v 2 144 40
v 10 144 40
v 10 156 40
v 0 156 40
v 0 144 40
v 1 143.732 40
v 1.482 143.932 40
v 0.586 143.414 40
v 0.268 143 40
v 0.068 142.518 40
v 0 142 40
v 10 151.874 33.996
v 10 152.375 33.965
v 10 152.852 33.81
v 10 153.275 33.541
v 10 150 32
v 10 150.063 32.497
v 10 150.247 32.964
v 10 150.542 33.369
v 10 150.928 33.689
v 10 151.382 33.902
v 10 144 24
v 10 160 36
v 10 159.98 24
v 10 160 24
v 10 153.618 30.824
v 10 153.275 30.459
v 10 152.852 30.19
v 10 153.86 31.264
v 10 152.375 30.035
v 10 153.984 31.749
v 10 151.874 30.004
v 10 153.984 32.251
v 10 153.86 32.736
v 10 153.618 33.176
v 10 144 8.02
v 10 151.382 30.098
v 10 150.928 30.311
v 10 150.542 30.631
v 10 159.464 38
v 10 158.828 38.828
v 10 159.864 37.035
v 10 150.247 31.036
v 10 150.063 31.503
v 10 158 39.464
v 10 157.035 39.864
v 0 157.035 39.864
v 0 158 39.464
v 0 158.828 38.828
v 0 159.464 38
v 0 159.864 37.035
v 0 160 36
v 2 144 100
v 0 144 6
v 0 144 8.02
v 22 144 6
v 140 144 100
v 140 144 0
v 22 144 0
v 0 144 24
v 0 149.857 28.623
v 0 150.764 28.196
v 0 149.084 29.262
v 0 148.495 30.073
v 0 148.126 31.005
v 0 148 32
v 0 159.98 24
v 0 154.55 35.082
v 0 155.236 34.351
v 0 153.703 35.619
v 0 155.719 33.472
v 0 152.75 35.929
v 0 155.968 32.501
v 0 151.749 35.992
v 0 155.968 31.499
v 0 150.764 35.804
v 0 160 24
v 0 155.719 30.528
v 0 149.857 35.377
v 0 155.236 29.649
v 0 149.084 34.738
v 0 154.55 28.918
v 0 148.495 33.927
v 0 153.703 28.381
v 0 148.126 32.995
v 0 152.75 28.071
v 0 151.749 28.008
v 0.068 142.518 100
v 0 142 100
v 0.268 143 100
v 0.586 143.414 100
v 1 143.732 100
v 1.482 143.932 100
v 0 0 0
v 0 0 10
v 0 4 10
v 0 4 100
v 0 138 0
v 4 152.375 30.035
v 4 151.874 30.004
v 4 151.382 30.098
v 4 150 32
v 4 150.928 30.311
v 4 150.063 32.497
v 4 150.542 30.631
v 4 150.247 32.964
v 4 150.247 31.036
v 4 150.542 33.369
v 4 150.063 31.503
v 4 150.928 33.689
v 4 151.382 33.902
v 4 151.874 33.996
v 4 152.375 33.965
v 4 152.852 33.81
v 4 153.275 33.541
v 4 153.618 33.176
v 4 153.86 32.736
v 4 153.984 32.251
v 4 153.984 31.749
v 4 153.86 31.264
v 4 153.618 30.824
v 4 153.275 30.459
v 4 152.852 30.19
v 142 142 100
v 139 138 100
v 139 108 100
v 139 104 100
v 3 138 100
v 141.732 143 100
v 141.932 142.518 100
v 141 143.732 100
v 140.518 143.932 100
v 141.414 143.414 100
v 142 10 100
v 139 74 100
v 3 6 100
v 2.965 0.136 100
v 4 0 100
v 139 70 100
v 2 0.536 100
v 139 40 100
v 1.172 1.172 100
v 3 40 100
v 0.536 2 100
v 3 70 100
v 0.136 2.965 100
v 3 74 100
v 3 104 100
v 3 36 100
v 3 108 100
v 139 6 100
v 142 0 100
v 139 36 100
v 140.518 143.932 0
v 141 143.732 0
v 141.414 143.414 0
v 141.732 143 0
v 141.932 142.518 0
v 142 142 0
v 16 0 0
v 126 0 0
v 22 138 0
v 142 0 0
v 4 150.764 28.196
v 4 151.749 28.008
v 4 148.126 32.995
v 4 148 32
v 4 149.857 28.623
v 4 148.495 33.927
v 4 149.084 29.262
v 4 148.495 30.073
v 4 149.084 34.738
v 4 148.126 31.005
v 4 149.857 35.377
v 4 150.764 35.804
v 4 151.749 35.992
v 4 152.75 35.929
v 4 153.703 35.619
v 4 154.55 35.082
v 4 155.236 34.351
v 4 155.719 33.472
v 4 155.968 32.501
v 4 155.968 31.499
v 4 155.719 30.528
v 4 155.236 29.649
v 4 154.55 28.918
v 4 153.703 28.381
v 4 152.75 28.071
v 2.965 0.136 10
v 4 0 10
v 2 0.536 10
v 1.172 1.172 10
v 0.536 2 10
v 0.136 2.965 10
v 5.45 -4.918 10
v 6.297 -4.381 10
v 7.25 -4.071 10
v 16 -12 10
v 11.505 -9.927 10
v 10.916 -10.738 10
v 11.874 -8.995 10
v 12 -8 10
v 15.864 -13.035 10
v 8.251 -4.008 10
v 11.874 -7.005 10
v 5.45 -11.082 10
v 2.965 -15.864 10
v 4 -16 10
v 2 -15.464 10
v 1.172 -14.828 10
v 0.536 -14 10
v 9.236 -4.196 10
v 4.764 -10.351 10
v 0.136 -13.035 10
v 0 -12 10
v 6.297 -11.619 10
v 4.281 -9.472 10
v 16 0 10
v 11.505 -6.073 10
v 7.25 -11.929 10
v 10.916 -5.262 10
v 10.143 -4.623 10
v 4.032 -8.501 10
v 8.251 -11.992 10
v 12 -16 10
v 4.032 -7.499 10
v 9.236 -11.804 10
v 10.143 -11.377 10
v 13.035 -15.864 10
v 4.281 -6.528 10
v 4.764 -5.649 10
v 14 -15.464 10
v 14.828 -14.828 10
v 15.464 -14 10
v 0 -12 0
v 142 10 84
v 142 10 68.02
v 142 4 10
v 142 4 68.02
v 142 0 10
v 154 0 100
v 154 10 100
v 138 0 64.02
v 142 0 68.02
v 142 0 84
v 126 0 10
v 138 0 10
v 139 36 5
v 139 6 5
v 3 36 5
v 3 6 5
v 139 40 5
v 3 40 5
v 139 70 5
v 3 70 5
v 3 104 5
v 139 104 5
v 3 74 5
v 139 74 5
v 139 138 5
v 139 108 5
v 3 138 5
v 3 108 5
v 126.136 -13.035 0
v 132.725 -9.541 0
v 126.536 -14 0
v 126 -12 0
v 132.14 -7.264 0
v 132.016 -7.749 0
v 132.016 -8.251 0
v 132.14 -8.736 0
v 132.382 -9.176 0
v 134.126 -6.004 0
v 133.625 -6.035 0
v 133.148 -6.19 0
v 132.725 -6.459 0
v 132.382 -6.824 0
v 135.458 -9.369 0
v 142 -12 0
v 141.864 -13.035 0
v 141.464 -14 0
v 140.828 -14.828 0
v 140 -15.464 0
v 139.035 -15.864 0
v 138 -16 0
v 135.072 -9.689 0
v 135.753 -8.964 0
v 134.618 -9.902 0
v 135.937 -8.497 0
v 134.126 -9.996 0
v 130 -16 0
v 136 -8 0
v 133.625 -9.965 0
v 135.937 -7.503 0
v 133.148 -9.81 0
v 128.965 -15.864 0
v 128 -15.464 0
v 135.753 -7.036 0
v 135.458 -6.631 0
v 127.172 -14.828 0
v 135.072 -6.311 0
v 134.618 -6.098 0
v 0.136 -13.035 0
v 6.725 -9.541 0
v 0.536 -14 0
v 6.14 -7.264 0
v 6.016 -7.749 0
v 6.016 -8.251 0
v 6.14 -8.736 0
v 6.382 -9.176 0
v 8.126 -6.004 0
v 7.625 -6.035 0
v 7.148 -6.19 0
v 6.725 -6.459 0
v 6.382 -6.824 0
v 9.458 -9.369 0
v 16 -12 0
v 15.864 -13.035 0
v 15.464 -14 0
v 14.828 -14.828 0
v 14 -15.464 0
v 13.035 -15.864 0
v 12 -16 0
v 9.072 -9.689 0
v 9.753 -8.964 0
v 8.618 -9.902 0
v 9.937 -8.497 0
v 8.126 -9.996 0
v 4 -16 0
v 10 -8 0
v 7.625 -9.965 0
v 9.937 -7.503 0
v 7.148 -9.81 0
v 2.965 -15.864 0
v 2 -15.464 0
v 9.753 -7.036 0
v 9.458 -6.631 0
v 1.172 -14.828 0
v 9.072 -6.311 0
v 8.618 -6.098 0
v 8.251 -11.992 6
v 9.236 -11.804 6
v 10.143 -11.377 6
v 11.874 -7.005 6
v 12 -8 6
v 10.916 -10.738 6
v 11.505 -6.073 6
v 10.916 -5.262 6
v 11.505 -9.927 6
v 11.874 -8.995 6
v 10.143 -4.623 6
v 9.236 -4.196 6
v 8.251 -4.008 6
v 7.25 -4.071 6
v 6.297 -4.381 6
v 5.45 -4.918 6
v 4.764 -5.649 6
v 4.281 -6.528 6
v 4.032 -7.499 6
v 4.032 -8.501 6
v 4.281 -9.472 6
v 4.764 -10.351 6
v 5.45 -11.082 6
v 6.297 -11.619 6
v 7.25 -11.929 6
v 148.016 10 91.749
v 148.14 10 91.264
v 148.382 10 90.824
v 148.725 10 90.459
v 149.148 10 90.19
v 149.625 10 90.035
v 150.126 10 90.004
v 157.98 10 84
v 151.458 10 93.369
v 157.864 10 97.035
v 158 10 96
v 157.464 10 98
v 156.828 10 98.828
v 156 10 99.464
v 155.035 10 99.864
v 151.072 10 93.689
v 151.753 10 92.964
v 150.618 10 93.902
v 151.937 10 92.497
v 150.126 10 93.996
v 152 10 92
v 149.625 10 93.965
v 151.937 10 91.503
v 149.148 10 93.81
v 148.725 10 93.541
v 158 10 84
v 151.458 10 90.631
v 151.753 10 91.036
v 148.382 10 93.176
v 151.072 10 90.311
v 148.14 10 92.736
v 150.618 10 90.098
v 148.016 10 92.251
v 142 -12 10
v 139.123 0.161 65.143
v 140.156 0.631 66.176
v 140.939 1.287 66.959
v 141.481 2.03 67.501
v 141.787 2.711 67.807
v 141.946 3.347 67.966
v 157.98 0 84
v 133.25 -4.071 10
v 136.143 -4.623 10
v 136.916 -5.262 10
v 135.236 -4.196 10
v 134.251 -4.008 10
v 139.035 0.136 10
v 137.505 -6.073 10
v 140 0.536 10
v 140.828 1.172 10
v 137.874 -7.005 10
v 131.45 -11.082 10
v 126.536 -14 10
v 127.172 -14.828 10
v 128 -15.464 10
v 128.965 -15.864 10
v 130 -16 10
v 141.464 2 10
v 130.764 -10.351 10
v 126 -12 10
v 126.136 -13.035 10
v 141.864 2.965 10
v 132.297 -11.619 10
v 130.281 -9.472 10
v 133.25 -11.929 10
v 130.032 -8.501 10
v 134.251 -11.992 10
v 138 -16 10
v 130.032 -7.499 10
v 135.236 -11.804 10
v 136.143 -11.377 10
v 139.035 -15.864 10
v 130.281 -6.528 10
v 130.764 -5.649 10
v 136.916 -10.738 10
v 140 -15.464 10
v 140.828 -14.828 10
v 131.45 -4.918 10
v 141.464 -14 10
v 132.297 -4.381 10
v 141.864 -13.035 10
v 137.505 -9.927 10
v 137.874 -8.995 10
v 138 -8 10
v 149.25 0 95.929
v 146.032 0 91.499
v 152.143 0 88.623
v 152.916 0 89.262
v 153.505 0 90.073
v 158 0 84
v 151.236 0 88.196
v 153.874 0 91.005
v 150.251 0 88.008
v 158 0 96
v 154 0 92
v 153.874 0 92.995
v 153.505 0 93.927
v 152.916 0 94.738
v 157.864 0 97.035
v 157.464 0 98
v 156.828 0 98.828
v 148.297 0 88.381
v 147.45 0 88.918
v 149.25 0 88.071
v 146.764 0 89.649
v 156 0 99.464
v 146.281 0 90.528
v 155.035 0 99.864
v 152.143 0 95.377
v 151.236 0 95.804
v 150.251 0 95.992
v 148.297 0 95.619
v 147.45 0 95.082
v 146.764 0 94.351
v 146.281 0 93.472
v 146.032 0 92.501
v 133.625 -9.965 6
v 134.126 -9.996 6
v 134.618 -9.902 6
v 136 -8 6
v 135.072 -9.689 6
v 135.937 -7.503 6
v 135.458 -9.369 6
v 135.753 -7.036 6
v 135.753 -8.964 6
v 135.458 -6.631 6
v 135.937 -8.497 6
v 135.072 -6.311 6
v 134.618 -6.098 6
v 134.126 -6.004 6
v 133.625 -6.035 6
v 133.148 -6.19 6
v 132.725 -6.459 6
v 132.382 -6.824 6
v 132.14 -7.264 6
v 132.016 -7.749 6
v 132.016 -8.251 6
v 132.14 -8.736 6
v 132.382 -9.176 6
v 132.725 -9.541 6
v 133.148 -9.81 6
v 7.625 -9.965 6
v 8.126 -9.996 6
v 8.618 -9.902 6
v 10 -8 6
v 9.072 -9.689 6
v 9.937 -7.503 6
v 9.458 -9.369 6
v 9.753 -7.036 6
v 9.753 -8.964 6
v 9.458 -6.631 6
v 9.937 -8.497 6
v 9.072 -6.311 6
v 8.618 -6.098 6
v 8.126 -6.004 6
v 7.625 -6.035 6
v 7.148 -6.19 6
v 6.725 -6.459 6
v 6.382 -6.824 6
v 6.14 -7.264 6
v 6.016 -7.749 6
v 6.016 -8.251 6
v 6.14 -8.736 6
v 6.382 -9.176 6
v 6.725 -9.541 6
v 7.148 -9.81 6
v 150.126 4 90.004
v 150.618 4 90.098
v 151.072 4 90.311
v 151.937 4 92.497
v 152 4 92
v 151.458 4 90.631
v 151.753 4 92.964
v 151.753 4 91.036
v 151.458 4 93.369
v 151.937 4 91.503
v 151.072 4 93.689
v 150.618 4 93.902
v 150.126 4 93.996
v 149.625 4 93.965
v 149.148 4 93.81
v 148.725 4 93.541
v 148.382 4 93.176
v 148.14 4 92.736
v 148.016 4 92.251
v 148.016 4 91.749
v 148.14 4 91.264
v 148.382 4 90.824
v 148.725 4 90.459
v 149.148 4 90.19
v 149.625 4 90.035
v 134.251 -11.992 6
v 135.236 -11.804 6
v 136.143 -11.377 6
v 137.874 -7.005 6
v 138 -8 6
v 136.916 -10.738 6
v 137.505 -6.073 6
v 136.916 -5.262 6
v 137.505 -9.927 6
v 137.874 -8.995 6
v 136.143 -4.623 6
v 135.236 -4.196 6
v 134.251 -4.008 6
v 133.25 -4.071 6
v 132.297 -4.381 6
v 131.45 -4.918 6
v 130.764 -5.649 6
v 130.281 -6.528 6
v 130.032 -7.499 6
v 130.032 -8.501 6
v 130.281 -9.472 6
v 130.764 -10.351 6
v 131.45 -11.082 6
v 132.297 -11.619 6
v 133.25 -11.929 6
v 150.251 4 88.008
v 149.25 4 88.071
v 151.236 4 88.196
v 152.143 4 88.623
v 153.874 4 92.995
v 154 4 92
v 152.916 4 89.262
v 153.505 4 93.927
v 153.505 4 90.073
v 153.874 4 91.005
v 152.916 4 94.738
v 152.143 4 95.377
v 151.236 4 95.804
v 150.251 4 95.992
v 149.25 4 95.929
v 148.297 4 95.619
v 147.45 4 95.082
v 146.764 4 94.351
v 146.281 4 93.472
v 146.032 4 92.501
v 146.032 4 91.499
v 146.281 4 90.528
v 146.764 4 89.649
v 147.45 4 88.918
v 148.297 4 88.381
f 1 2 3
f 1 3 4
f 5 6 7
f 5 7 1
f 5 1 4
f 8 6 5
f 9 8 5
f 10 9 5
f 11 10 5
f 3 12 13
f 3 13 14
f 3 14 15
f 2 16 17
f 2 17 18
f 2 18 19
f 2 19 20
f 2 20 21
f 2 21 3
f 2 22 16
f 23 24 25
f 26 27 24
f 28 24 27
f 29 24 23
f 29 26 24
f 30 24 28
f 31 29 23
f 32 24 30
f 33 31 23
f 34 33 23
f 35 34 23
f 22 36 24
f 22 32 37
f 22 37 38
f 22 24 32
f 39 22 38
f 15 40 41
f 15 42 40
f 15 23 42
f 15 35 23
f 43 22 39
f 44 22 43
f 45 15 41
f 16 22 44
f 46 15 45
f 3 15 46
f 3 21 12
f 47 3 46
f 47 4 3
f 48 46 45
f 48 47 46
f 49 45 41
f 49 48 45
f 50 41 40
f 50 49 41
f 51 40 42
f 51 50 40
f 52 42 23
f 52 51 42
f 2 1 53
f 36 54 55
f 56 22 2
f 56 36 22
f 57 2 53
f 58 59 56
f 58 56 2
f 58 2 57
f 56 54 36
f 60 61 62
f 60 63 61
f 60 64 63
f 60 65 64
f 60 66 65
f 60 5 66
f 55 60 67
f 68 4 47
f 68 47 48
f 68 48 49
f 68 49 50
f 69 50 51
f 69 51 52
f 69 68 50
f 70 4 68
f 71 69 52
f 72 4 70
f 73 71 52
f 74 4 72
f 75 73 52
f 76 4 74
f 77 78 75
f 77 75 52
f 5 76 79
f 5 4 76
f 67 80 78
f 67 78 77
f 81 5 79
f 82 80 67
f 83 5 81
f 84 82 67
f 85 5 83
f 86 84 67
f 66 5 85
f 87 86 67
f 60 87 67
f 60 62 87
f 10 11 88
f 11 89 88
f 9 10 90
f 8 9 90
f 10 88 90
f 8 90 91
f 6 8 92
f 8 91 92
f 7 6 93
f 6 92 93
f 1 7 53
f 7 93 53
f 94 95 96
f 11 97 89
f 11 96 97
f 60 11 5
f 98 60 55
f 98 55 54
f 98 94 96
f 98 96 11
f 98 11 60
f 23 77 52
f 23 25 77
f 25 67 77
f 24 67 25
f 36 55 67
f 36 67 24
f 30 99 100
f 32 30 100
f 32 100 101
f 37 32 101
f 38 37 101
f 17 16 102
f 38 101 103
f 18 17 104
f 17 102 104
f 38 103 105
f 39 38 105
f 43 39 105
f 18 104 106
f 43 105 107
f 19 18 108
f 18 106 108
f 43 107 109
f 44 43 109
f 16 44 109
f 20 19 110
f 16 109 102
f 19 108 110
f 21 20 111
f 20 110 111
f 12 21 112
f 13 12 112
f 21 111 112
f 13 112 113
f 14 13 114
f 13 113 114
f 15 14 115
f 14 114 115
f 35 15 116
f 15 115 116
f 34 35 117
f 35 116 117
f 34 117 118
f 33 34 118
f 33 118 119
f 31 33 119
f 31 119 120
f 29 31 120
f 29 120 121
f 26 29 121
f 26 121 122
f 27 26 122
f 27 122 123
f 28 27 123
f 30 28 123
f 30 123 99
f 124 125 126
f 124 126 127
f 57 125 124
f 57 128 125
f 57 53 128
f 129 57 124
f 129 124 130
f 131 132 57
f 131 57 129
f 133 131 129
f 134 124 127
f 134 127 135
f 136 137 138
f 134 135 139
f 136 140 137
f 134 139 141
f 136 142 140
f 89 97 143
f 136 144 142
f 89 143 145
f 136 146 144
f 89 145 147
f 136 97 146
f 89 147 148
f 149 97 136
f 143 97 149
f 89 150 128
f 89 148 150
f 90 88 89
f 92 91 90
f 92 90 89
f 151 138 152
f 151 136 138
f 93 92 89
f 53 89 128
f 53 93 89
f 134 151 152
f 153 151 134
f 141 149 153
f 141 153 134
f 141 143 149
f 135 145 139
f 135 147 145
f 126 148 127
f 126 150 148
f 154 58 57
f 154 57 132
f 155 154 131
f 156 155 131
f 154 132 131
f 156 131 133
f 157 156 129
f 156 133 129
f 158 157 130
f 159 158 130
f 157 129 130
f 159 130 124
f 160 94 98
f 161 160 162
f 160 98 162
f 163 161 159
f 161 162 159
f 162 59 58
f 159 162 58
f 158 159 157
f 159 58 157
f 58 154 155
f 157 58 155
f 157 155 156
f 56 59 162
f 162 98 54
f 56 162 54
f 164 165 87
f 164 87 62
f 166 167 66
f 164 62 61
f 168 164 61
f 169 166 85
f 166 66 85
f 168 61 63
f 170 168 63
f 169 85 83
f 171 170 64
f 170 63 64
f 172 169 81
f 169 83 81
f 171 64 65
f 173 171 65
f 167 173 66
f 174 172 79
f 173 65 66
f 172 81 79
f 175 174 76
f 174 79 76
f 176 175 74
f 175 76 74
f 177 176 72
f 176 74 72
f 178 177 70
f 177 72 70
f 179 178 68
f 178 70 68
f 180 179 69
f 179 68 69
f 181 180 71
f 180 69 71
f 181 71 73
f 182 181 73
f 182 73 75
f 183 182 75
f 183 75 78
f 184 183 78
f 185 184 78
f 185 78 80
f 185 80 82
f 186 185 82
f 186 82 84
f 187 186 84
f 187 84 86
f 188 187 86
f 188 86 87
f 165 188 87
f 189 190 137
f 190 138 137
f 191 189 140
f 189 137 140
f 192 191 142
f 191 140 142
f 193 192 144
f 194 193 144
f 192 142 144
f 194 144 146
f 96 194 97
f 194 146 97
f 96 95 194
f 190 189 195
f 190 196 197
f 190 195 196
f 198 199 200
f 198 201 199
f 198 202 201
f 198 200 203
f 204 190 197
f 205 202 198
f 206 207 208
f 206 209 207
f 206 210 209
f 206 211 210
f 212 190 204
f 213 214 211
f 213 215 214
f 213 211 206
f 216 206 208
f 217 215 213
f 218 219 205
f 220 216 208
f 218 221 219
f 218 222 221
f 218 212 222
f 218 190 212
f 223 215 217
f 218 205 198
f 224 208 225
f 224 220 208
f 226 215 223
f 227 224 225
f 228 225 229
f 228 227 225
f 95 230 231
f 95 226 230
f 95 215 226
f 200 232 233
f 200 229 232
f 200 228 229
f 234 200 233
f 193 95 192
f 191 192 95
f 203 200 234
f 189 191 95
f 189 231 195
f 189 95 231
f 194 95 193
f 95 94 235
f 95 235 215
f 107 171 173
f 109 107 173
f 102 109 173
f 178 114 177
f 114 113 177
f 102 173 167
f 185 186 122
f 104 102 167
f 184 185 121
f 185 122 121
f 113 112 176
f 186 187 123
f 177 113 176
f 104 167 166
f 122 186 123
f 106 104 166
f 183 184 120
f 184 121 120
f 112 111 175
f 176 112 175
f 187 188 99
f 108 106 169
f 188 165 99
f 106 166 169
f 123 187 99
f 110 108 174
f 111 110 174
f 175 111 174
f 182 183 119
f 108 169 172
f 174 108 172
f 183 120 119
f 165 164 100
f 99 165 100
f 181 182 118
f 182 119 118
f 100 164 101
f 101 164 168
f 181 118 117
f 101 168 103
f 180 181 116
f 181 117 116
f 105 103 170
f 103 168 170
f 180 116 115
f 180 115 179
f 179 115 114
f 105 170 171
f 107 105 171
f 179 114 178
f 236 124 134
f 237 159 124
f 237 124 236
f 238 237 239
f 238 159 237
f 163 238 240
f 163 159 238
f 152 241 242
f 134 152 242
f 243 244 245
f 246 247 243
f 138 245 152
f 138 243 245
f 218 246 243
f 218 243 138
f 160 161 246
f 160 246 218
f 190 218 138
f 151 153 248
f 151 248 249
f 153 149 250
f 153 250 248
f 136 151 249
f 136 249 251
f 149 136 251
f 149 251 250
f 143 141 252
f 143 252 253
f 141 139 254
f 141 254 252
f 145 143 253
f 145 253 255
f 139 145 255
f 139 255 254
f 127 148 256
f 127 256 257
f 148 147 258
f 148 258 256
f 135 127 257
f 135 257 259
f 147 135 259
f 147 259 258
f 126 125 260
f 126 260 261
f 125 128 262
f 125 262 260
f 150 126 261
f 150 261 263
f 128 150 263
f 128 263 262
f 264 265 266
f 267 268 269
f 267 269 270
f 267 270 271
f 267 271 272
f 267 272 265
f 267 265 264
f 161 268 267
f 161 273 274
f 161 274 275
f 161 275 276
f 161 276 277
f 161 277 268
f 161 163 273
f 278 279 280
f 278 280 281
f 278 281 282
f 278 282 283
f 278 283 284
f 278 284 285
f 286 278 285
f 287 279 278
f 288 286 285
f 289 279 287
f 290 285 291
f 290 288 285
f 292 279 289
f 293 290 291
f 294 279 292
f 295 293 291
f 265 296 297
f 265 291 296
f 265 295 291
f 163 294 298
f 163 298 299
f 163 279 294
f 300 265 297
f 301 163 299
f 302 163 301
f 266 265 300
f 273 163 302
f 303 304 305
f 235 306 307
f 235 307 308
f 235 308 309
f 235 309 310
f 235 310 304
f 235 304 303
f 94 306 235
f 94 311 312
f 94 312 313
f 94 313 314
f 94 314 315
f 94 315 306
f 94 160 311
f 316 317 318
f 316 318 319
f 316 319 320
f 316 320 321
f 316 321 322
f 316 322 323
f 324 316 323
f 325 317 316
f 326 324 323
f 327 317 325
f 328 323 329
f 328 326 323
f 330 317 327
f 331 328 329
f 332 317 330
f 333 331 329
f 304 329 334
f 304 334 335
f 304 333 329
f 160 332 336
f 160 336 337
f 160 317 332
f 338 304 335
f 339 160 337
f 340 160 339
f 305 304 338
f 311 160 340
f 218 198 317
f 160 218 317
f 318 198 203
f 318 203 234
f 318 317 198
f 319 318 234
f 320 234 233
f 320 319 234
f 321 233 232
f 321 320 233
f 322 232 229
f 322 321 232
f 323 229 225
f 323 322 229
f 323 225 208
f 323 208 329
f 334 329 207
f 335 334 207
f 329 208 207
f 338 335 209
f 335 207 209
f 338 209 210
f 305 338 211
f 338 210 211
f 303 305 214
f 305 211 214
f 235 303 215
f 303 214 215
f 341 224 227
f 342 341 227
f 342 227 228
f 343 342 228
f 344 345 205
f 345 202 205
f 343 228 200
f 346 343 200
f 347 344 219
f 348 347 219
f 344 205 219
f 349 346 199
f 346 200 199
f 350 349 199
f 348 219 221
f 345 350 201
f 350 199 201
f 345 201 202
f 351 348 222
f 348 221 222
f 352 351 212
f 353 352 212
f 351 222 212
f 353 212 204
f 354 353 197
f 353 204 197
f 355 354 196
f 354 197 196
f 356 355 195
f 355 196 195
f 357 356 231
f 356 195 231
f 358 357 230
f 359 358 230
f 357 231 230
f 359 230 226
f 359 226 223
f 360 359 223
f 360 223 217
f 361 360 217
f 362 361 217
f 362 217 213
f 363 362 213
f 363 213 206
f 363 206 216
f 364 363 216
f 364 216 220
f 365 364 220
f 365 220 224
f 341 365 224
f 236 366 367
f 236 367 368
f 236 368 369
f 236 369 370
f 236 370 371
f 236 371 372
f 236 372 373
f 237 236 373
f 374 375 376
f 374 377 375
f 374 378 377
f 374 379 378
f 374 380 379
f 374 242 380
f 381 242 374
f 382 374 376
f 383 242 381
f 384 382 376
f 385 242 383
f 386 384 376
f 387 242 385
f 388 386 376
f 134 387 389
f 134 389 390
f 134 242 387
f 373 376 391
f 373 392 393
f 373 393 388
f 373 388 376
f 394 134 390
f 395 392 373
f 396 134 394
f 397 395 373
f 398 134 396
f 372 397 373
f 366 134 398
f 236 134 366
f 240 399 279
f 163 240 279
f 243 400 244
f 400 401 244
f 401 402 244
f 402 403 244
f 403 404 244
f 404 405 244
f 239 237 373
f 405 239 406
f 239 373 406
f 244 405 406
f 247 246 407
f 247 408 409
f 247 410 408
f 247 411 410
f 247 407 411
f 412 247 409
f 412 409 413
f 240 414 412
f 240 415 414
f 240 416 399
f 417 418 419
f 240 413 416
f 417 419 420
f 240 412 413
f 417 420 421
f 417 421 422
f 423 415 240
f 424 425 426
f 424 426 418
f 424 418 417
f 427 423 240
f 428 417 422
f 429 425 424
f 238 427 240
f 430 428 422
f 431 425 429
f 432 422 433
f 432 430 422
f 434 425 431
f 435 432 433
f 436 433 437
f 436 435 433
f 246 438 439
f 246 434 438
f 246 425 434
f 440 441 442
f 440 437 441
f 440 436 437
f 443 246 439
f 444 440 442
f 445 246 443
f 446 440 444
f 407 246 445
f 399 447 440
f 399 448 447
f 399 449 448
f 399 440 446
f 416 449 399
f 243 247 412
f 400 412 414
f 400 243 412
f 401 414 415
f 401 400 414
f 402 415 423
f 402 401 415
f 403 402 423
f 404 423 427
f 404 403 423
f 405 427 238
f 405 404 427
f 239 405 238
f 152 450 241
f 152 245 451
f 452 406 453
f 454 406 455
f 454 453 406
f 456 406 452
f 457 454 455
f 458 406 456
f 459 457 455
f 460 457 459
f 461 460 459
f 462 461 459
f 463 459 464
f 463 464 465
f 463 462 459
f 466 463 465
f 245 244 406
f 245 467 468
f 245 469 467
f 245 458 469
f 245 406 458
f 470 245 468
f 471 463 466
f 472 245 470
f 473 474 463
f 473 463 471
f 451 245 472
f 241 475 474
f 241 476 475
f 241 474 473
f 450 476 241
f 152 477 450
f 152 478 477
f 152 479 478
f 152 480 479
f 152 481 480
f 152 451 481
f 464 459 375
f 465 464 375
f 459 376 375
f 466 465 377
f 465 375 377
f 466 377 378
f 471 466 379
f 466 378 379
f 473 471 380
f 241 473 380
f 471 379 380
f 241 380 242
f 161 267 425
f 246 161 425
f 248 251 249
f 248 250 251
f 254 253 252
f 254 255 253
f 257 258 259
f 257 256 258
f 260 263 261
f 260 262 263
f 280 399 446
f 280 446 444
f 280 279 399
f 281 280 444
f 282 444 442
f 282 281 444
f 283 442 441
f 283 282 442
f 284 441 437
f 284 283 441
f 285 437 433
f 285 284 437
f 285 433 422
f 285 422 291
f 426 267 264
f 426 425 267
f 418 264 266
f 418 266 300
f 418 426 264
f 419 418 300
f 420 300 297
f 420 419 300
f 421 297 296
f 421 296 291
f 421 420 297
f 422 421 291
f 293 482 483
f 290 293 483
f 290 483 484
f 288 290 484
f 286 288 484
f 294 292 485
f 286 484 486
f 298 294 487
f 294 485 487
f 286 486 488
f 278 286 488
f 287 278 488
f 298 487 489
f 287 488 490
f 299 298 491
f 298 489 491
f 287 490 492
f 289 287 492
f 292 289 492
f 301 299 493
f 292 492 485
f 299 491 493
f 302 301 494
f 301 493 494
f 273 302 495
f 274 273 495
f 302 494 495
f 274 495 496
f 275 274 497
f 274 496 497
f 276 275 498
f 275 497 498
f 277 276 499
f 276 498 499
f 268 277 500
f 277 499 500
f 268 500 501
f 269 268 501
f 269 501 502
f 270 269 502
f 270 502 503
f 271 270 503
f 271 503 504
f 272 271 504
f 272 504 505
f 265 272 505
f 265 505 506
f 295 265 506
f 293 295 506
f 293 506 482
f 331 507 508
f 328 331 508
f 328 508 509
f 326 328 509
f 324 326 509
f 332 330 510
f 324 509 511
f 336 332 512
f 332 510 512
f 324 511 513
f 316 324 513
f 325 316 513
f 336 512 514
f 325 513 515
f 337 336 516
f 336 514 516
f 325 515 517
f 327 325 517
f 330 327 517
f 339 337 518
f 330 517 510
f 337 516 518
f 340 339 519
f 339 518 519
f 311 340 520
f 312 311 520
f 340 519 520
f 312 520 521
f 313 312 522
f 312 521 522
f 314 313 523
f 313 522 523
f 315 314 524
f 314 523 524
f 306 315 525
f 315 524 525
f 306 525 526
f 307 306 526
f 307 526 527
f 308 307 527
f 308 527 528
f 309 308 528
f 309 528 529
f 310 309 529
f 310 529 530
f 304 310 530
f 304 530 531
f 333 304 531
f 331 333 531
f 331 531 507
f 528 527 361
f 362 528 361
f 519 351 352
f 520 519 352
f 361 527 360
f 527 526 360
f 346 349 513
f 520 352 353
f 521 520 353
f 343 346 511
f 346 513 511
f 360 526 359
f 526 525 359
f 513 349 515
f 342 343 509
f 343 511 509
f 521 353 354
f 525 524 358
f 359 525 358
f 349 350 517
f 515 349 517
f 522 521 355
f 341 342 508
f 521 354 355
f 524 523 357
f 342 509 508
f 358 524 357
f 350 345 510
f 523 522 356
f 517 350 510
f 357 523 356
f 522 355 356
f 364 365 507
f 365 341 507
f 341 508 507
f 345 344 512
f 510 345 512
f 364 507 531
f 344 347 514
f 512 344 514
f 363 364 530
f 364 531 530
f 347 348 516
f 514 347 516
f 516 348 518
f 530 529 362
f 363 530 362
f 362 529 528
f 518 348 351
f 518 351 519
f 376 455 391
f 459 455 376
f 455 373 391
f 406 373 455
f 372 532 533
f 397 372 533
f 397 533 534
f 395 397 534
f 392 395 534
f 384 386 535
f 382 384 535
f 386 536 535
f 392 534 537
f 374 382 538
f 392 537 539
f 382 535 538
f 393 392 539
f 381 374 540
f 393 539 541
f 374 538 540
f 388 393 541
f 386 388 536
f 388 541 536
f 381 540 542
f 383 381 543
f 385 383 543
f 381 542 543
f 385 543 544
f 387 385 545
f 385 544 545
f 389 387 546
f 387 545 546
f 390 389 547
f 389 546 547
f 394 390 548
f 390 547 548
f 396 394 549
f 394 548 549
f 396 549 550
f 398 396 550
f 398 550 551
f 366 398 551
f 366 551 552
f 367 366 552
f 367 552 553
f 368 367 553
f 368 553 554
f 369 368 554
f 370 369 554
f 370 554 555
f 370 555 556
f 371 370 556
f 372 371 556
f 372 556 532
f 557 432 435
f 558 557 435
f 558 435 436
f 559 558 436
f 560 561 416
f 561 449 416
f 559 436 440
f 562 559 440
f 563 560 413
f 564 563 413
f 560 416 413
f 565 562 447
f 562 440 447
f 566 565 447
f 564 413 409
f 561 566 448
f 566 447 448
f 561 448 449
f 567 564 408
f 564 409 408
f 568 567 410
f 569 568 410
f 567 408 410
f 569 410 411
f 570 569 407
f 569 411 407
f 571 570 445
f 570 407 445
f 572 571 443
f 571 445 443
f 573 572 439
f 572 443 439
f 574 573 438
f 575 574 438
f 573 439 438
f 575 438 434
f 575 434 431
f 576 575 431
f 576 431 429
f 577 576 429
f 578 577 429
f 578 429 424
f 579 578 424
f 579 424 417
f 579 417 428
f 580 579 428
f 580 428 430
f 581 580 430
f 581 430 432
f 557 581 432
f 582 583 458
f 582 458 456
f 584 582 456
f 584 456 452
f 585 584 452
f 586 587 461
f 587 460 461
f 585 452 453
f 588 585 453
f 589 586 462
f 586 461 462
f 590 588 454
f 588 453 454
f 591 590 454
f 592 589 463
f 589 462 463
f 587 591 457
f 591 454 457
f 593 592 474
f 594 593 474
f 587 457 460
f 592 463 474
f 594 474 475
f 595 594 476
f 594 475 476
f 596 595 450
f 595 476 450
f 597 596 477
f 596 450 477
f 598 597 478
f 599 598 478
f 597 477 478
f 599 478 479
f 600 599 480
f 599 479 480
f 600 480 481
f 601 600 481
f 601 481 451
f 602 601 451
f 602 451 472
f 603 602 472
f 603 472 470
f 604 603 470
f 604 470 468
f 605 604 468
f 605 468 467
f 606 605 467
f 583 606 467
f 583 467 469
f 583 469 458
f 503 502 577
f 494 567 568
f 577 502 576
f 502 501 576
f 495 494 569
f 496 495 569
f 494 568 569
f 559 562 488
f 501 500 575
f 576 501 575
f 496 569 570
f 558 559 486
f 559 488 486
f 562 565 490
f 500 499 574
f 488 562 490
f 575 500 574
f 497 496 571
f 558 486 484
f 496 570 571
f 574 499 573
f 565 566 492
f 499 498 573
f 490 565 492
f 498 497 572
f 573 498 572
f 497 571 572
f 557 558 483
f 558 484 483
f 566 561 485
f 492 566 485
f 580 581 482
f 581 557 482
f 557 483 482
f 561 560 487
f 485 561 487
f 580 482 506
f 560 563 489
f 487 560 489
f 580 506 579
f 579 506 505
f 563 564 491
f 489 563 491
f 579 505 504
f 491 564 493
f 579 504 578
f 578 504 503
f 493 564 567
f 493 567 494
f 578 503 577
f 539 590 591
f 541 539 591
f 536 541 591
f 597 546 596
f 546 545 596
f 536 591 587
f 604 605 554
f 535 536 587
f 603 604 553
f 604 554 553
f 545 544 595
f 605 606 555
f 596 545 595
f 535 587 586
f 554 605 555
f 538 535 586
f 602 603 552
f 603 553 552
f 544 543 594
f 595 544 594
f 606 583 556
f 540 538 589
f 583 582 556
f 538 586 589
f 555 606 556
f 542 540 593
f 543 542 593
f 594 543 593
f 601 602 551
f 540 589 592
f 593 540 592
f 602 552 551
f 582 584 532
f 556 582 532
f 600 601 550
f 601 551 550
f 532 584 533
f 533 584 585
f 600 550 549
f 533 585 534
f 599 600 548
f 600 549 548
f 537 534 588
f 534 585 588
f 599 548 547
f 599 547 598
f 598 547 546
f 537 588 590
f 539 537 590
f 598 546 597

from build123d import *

# Parameters (mm, degrees)
SKETCH_W        = 142
SKETCH_H        = 144
PAD_DEPTH       = 100
SKETCH001_W     = 136
SKETCH001_H     = 30
POCKET_DEPTH    = 95
SKETCH002_W     = 10
SKETCH002_H     = 16
PAD001_DEPTH    = 16
SKETCH003_R     = 4
POCKET001_DEPTH = 4
SKETCH004_R     = 2
POCKET002_DEPTH = 6
SKETCH005_W     = 16
SKETCH005_H     = 10
PAD002_DEPTH    = 16
SKETCH006_R     = 4
POCKET003_DEPTH = 4
SKETCH007_R     = 2
POCKET004_DEPTH = 6
POCKET005_DEPTH = 22
SKETCH009_W     = 10
SKETCH009_H     = 16
PAD003_DEPTH    = 16
SKETCH010_R     = 4
POCKET006_DEPTH = 4
SKETCH011_R     = 2
POCKET007_DEPTH = 6
CHAMFER_SIZE    = 15.98
CHAMFER001_SIZE = 15.98
FILLET_R        = 4
FILLET001_R     = 4
FILLET002_R     = 4
FILLET003_R     = 4
FILLET004_R     = 2
FILLET005_R     = 2
FILLET006_R     = 4


with BuildPart() as part:
    # Sketch → Pad (new body)
    with BuildSketch(Plane.XY):
        with Locations((71, 72)):
            Rectangle(SKETCH_W, SKETCH_H)
    extrude(amount=PAD_DEPTH)

    # Sketch001 (on Face6 of Pad) → Pocket (cut)
    with BuildSketch(Plane.XY.offset(100)):
        with Locations((71, 123)):
            Rectangle(SKETCH001_W, SKETCH001_H)
        with Locations((71, 89)):
            Rectangle(SKETCH001_W, SKETCH001_H)
        with Locations((71, 55)):
            Rectangle(SKETCH001_W, SKETCH001_H)
        with Locations((71, 21)):
            Rectangle(SKETCH001_W, SKETCH001_H)
    extrude(amount=-POCKET_DEPTH, mode=Mode.SUBTRACT)

    # Sketch002 (on Face1 of Pocket) → Pad001 (join)
    with BuildSketch(Plane(origin=(0, 144, 0), x_dir=(-1, 0, 0), z_dir=(0, 1, 0))):
        with Locations((-5, 32)):
            Rectangle(SKETCH002_W, SKETCH002_H)
    extrude(amount=PAD001_DEPTH)

    # Sketch003 (on Face10 of Pad001) → Pocket001 (cut)
    with BuildSketch(Plane(origin=(0, 0, 0), x_dir=(0, -1, 0), z_dir=(-1, 0, 0))):
        with Locations((-152, 32)):
            Circle(SKETCH003_R)
    extrude(amount=-POCKET001_DEPTH, mode=Mode.SUBTRACT)

    # Sketch004 (on Face33 of Pocket001) → Pocket002 (cut)
    with BuildSketch(Plane(origin=(4, 0, 0), x_dir=(0, -1, 0), z_dir=(-1, 0, 0))):
        with Locations((-152, 32)):
            Circle(SKETCH004_R)
    extrude(amount=-POCKET002_DEPTH, mode=Mode.SUBTRACT)

    # Sketch005 (on Face4 of Pocket002) → Pad002 (join)
    with BuildSketch(Plane.XZ):
        with Locations((8, 5)):
            Rectangle(SKETCH005_W, SKETCH005_H)
        with Locations((134, 5)):
            Rectangle(SKETCH005_W, SKETCH005_H)
    extrude(amount=PAD002_DEPTH)

    # Sketch006 (on Face38 of Pad002) → Pocket003 (cut)
    with BuildSketch(Plane.XY.offset(10)):
        with Locations((8, -8)):
            Circle(SKETCH006_R)
        with Locations((134, -8)):
            Circle(SKETCH006_R)
    extrude(amount=-POCKET003_DEPTH, mode=Mode.SUBTRACT)

    # Sketch007 (on Face48 of Pocket003) → Pocket004 (cut)
    with BuildSketch(Plane.XY.offset(6)):
        with Locations((8, -8)):
            Circle(SKETCH007_R)
        with Locations((134, -8)):
            Circle(SKETCH007_R)
    extrude(amount=-POCKET004_DEPTH, mode=Mode.SUBTRACT)

    # Sketch008 (on Face5 of Pocket004) → Pocket005 (cut)
    with BuildSketch(Plane(origin=(0, 0, 0), x_dir=(0, -1, 0), z_dir=(-1, 0, 0))):
        Polygon((-144, 6), (-144, 0), (-138, 0), align=None)
    extrude(amount=-POCKET005_DEPTH, mode=Mode.SUBTRACT)

    # Sketch009 (on Face3 of Pocket005) → Pad003 (join)
    with BuildSketch(Plane.YZ.offset(142)):
        with Locations((5, 92)):
            Rectangle(SKETCH009_W, SKETCH009_H)
    extrude(amount=PAD003_DEPTH)

    # Sketch010 (on Face42 of Pad003) → Pocket006 (cut)
    with BuildSketch(Plane.XZ):
        with Locations((150, 92)):
            Circle(SKETCH010_R)
    extrude(amount=-POCKET006_DEPTH, mode=Mode.SUBTRACT)

    # Sketch011 (on Face59 of Pocket006) → Pocket007 (cut)
    with BuildSketch(Plane.XZ.offset(-4)):
        with Locations((150, 92)):
            Circle(SKETCH011_R)
    extrude(amount=-POCKET007_DEPTH, mode=Mode.SUBTRACT)

    # Chamfer
    chamfer_edges = [part.edges().sort_by_distance(p)[0] for p in [
        (5, 144, 24),
    ]]
    chamfer(chamfer_edges, length=CHAMFER_SIZE)

    # Chamfer001
    chamfer001_edges = [part.edges().sort_by_distance(p)[0] for p in [
        (142, 5, 84),
    ]]
    chamfer(chamfer001_edges, length=CHAMFER001_SIZE)

    # Fillet
    fillet_edges = [part.edges().sort_by_distance(p)[0] for p in [
        (0, 0, 55),
    ]]
    fillet(fillet_edges, radius=FILLET_R)

    # Fillet001
    fillet001_edges = [part.edges().sort_by_distance(p)[0] for p in [
        (142, -16, 5),
        (126, -16, 5),
        (16, -16, 5),
        (0, -16, 5),
    ]]
    fillet(fillet001_edges, radius=FILLET001_R)

    # Fillet002
    fillet002_edges = [part.edges().sort_by_distance(p)[0] for p in [
        (142, 0, 39.01),
    ]]
    fillet(fillet002_edges, radius=FILLET002_R)

    # Fillet003
    fillet003_edges = [part.edges().sort_by_distance(p)[0] for p in [
        (158, 5, 100),
    ]]
    fillet(fillet003_edges, radius=FILLET003_R)

    # Fillet004
    fillet004_edges = [part.edges().sort_by_distance(p)[0] for p in [
        (0, 144, 70),
    ]]
    fillet(fillet004_edges, radius=FILLET004_R)

    # Fillet005
    fillet005_edges = [part.edges().sort_by_distance(p)[0] for p in [
        (142, 144, 50),
    ]]
    fillet(fillet005_edges, radius=FILLET005_R)

    # Fillet006
    fillet006_edges = [part.edges().sort_by_distance(p)[0] for p in [
        (5, 160, 40),
    ]]
    fillet(fillet006_edges, radius=FILLET006_R)


solid = part.part
